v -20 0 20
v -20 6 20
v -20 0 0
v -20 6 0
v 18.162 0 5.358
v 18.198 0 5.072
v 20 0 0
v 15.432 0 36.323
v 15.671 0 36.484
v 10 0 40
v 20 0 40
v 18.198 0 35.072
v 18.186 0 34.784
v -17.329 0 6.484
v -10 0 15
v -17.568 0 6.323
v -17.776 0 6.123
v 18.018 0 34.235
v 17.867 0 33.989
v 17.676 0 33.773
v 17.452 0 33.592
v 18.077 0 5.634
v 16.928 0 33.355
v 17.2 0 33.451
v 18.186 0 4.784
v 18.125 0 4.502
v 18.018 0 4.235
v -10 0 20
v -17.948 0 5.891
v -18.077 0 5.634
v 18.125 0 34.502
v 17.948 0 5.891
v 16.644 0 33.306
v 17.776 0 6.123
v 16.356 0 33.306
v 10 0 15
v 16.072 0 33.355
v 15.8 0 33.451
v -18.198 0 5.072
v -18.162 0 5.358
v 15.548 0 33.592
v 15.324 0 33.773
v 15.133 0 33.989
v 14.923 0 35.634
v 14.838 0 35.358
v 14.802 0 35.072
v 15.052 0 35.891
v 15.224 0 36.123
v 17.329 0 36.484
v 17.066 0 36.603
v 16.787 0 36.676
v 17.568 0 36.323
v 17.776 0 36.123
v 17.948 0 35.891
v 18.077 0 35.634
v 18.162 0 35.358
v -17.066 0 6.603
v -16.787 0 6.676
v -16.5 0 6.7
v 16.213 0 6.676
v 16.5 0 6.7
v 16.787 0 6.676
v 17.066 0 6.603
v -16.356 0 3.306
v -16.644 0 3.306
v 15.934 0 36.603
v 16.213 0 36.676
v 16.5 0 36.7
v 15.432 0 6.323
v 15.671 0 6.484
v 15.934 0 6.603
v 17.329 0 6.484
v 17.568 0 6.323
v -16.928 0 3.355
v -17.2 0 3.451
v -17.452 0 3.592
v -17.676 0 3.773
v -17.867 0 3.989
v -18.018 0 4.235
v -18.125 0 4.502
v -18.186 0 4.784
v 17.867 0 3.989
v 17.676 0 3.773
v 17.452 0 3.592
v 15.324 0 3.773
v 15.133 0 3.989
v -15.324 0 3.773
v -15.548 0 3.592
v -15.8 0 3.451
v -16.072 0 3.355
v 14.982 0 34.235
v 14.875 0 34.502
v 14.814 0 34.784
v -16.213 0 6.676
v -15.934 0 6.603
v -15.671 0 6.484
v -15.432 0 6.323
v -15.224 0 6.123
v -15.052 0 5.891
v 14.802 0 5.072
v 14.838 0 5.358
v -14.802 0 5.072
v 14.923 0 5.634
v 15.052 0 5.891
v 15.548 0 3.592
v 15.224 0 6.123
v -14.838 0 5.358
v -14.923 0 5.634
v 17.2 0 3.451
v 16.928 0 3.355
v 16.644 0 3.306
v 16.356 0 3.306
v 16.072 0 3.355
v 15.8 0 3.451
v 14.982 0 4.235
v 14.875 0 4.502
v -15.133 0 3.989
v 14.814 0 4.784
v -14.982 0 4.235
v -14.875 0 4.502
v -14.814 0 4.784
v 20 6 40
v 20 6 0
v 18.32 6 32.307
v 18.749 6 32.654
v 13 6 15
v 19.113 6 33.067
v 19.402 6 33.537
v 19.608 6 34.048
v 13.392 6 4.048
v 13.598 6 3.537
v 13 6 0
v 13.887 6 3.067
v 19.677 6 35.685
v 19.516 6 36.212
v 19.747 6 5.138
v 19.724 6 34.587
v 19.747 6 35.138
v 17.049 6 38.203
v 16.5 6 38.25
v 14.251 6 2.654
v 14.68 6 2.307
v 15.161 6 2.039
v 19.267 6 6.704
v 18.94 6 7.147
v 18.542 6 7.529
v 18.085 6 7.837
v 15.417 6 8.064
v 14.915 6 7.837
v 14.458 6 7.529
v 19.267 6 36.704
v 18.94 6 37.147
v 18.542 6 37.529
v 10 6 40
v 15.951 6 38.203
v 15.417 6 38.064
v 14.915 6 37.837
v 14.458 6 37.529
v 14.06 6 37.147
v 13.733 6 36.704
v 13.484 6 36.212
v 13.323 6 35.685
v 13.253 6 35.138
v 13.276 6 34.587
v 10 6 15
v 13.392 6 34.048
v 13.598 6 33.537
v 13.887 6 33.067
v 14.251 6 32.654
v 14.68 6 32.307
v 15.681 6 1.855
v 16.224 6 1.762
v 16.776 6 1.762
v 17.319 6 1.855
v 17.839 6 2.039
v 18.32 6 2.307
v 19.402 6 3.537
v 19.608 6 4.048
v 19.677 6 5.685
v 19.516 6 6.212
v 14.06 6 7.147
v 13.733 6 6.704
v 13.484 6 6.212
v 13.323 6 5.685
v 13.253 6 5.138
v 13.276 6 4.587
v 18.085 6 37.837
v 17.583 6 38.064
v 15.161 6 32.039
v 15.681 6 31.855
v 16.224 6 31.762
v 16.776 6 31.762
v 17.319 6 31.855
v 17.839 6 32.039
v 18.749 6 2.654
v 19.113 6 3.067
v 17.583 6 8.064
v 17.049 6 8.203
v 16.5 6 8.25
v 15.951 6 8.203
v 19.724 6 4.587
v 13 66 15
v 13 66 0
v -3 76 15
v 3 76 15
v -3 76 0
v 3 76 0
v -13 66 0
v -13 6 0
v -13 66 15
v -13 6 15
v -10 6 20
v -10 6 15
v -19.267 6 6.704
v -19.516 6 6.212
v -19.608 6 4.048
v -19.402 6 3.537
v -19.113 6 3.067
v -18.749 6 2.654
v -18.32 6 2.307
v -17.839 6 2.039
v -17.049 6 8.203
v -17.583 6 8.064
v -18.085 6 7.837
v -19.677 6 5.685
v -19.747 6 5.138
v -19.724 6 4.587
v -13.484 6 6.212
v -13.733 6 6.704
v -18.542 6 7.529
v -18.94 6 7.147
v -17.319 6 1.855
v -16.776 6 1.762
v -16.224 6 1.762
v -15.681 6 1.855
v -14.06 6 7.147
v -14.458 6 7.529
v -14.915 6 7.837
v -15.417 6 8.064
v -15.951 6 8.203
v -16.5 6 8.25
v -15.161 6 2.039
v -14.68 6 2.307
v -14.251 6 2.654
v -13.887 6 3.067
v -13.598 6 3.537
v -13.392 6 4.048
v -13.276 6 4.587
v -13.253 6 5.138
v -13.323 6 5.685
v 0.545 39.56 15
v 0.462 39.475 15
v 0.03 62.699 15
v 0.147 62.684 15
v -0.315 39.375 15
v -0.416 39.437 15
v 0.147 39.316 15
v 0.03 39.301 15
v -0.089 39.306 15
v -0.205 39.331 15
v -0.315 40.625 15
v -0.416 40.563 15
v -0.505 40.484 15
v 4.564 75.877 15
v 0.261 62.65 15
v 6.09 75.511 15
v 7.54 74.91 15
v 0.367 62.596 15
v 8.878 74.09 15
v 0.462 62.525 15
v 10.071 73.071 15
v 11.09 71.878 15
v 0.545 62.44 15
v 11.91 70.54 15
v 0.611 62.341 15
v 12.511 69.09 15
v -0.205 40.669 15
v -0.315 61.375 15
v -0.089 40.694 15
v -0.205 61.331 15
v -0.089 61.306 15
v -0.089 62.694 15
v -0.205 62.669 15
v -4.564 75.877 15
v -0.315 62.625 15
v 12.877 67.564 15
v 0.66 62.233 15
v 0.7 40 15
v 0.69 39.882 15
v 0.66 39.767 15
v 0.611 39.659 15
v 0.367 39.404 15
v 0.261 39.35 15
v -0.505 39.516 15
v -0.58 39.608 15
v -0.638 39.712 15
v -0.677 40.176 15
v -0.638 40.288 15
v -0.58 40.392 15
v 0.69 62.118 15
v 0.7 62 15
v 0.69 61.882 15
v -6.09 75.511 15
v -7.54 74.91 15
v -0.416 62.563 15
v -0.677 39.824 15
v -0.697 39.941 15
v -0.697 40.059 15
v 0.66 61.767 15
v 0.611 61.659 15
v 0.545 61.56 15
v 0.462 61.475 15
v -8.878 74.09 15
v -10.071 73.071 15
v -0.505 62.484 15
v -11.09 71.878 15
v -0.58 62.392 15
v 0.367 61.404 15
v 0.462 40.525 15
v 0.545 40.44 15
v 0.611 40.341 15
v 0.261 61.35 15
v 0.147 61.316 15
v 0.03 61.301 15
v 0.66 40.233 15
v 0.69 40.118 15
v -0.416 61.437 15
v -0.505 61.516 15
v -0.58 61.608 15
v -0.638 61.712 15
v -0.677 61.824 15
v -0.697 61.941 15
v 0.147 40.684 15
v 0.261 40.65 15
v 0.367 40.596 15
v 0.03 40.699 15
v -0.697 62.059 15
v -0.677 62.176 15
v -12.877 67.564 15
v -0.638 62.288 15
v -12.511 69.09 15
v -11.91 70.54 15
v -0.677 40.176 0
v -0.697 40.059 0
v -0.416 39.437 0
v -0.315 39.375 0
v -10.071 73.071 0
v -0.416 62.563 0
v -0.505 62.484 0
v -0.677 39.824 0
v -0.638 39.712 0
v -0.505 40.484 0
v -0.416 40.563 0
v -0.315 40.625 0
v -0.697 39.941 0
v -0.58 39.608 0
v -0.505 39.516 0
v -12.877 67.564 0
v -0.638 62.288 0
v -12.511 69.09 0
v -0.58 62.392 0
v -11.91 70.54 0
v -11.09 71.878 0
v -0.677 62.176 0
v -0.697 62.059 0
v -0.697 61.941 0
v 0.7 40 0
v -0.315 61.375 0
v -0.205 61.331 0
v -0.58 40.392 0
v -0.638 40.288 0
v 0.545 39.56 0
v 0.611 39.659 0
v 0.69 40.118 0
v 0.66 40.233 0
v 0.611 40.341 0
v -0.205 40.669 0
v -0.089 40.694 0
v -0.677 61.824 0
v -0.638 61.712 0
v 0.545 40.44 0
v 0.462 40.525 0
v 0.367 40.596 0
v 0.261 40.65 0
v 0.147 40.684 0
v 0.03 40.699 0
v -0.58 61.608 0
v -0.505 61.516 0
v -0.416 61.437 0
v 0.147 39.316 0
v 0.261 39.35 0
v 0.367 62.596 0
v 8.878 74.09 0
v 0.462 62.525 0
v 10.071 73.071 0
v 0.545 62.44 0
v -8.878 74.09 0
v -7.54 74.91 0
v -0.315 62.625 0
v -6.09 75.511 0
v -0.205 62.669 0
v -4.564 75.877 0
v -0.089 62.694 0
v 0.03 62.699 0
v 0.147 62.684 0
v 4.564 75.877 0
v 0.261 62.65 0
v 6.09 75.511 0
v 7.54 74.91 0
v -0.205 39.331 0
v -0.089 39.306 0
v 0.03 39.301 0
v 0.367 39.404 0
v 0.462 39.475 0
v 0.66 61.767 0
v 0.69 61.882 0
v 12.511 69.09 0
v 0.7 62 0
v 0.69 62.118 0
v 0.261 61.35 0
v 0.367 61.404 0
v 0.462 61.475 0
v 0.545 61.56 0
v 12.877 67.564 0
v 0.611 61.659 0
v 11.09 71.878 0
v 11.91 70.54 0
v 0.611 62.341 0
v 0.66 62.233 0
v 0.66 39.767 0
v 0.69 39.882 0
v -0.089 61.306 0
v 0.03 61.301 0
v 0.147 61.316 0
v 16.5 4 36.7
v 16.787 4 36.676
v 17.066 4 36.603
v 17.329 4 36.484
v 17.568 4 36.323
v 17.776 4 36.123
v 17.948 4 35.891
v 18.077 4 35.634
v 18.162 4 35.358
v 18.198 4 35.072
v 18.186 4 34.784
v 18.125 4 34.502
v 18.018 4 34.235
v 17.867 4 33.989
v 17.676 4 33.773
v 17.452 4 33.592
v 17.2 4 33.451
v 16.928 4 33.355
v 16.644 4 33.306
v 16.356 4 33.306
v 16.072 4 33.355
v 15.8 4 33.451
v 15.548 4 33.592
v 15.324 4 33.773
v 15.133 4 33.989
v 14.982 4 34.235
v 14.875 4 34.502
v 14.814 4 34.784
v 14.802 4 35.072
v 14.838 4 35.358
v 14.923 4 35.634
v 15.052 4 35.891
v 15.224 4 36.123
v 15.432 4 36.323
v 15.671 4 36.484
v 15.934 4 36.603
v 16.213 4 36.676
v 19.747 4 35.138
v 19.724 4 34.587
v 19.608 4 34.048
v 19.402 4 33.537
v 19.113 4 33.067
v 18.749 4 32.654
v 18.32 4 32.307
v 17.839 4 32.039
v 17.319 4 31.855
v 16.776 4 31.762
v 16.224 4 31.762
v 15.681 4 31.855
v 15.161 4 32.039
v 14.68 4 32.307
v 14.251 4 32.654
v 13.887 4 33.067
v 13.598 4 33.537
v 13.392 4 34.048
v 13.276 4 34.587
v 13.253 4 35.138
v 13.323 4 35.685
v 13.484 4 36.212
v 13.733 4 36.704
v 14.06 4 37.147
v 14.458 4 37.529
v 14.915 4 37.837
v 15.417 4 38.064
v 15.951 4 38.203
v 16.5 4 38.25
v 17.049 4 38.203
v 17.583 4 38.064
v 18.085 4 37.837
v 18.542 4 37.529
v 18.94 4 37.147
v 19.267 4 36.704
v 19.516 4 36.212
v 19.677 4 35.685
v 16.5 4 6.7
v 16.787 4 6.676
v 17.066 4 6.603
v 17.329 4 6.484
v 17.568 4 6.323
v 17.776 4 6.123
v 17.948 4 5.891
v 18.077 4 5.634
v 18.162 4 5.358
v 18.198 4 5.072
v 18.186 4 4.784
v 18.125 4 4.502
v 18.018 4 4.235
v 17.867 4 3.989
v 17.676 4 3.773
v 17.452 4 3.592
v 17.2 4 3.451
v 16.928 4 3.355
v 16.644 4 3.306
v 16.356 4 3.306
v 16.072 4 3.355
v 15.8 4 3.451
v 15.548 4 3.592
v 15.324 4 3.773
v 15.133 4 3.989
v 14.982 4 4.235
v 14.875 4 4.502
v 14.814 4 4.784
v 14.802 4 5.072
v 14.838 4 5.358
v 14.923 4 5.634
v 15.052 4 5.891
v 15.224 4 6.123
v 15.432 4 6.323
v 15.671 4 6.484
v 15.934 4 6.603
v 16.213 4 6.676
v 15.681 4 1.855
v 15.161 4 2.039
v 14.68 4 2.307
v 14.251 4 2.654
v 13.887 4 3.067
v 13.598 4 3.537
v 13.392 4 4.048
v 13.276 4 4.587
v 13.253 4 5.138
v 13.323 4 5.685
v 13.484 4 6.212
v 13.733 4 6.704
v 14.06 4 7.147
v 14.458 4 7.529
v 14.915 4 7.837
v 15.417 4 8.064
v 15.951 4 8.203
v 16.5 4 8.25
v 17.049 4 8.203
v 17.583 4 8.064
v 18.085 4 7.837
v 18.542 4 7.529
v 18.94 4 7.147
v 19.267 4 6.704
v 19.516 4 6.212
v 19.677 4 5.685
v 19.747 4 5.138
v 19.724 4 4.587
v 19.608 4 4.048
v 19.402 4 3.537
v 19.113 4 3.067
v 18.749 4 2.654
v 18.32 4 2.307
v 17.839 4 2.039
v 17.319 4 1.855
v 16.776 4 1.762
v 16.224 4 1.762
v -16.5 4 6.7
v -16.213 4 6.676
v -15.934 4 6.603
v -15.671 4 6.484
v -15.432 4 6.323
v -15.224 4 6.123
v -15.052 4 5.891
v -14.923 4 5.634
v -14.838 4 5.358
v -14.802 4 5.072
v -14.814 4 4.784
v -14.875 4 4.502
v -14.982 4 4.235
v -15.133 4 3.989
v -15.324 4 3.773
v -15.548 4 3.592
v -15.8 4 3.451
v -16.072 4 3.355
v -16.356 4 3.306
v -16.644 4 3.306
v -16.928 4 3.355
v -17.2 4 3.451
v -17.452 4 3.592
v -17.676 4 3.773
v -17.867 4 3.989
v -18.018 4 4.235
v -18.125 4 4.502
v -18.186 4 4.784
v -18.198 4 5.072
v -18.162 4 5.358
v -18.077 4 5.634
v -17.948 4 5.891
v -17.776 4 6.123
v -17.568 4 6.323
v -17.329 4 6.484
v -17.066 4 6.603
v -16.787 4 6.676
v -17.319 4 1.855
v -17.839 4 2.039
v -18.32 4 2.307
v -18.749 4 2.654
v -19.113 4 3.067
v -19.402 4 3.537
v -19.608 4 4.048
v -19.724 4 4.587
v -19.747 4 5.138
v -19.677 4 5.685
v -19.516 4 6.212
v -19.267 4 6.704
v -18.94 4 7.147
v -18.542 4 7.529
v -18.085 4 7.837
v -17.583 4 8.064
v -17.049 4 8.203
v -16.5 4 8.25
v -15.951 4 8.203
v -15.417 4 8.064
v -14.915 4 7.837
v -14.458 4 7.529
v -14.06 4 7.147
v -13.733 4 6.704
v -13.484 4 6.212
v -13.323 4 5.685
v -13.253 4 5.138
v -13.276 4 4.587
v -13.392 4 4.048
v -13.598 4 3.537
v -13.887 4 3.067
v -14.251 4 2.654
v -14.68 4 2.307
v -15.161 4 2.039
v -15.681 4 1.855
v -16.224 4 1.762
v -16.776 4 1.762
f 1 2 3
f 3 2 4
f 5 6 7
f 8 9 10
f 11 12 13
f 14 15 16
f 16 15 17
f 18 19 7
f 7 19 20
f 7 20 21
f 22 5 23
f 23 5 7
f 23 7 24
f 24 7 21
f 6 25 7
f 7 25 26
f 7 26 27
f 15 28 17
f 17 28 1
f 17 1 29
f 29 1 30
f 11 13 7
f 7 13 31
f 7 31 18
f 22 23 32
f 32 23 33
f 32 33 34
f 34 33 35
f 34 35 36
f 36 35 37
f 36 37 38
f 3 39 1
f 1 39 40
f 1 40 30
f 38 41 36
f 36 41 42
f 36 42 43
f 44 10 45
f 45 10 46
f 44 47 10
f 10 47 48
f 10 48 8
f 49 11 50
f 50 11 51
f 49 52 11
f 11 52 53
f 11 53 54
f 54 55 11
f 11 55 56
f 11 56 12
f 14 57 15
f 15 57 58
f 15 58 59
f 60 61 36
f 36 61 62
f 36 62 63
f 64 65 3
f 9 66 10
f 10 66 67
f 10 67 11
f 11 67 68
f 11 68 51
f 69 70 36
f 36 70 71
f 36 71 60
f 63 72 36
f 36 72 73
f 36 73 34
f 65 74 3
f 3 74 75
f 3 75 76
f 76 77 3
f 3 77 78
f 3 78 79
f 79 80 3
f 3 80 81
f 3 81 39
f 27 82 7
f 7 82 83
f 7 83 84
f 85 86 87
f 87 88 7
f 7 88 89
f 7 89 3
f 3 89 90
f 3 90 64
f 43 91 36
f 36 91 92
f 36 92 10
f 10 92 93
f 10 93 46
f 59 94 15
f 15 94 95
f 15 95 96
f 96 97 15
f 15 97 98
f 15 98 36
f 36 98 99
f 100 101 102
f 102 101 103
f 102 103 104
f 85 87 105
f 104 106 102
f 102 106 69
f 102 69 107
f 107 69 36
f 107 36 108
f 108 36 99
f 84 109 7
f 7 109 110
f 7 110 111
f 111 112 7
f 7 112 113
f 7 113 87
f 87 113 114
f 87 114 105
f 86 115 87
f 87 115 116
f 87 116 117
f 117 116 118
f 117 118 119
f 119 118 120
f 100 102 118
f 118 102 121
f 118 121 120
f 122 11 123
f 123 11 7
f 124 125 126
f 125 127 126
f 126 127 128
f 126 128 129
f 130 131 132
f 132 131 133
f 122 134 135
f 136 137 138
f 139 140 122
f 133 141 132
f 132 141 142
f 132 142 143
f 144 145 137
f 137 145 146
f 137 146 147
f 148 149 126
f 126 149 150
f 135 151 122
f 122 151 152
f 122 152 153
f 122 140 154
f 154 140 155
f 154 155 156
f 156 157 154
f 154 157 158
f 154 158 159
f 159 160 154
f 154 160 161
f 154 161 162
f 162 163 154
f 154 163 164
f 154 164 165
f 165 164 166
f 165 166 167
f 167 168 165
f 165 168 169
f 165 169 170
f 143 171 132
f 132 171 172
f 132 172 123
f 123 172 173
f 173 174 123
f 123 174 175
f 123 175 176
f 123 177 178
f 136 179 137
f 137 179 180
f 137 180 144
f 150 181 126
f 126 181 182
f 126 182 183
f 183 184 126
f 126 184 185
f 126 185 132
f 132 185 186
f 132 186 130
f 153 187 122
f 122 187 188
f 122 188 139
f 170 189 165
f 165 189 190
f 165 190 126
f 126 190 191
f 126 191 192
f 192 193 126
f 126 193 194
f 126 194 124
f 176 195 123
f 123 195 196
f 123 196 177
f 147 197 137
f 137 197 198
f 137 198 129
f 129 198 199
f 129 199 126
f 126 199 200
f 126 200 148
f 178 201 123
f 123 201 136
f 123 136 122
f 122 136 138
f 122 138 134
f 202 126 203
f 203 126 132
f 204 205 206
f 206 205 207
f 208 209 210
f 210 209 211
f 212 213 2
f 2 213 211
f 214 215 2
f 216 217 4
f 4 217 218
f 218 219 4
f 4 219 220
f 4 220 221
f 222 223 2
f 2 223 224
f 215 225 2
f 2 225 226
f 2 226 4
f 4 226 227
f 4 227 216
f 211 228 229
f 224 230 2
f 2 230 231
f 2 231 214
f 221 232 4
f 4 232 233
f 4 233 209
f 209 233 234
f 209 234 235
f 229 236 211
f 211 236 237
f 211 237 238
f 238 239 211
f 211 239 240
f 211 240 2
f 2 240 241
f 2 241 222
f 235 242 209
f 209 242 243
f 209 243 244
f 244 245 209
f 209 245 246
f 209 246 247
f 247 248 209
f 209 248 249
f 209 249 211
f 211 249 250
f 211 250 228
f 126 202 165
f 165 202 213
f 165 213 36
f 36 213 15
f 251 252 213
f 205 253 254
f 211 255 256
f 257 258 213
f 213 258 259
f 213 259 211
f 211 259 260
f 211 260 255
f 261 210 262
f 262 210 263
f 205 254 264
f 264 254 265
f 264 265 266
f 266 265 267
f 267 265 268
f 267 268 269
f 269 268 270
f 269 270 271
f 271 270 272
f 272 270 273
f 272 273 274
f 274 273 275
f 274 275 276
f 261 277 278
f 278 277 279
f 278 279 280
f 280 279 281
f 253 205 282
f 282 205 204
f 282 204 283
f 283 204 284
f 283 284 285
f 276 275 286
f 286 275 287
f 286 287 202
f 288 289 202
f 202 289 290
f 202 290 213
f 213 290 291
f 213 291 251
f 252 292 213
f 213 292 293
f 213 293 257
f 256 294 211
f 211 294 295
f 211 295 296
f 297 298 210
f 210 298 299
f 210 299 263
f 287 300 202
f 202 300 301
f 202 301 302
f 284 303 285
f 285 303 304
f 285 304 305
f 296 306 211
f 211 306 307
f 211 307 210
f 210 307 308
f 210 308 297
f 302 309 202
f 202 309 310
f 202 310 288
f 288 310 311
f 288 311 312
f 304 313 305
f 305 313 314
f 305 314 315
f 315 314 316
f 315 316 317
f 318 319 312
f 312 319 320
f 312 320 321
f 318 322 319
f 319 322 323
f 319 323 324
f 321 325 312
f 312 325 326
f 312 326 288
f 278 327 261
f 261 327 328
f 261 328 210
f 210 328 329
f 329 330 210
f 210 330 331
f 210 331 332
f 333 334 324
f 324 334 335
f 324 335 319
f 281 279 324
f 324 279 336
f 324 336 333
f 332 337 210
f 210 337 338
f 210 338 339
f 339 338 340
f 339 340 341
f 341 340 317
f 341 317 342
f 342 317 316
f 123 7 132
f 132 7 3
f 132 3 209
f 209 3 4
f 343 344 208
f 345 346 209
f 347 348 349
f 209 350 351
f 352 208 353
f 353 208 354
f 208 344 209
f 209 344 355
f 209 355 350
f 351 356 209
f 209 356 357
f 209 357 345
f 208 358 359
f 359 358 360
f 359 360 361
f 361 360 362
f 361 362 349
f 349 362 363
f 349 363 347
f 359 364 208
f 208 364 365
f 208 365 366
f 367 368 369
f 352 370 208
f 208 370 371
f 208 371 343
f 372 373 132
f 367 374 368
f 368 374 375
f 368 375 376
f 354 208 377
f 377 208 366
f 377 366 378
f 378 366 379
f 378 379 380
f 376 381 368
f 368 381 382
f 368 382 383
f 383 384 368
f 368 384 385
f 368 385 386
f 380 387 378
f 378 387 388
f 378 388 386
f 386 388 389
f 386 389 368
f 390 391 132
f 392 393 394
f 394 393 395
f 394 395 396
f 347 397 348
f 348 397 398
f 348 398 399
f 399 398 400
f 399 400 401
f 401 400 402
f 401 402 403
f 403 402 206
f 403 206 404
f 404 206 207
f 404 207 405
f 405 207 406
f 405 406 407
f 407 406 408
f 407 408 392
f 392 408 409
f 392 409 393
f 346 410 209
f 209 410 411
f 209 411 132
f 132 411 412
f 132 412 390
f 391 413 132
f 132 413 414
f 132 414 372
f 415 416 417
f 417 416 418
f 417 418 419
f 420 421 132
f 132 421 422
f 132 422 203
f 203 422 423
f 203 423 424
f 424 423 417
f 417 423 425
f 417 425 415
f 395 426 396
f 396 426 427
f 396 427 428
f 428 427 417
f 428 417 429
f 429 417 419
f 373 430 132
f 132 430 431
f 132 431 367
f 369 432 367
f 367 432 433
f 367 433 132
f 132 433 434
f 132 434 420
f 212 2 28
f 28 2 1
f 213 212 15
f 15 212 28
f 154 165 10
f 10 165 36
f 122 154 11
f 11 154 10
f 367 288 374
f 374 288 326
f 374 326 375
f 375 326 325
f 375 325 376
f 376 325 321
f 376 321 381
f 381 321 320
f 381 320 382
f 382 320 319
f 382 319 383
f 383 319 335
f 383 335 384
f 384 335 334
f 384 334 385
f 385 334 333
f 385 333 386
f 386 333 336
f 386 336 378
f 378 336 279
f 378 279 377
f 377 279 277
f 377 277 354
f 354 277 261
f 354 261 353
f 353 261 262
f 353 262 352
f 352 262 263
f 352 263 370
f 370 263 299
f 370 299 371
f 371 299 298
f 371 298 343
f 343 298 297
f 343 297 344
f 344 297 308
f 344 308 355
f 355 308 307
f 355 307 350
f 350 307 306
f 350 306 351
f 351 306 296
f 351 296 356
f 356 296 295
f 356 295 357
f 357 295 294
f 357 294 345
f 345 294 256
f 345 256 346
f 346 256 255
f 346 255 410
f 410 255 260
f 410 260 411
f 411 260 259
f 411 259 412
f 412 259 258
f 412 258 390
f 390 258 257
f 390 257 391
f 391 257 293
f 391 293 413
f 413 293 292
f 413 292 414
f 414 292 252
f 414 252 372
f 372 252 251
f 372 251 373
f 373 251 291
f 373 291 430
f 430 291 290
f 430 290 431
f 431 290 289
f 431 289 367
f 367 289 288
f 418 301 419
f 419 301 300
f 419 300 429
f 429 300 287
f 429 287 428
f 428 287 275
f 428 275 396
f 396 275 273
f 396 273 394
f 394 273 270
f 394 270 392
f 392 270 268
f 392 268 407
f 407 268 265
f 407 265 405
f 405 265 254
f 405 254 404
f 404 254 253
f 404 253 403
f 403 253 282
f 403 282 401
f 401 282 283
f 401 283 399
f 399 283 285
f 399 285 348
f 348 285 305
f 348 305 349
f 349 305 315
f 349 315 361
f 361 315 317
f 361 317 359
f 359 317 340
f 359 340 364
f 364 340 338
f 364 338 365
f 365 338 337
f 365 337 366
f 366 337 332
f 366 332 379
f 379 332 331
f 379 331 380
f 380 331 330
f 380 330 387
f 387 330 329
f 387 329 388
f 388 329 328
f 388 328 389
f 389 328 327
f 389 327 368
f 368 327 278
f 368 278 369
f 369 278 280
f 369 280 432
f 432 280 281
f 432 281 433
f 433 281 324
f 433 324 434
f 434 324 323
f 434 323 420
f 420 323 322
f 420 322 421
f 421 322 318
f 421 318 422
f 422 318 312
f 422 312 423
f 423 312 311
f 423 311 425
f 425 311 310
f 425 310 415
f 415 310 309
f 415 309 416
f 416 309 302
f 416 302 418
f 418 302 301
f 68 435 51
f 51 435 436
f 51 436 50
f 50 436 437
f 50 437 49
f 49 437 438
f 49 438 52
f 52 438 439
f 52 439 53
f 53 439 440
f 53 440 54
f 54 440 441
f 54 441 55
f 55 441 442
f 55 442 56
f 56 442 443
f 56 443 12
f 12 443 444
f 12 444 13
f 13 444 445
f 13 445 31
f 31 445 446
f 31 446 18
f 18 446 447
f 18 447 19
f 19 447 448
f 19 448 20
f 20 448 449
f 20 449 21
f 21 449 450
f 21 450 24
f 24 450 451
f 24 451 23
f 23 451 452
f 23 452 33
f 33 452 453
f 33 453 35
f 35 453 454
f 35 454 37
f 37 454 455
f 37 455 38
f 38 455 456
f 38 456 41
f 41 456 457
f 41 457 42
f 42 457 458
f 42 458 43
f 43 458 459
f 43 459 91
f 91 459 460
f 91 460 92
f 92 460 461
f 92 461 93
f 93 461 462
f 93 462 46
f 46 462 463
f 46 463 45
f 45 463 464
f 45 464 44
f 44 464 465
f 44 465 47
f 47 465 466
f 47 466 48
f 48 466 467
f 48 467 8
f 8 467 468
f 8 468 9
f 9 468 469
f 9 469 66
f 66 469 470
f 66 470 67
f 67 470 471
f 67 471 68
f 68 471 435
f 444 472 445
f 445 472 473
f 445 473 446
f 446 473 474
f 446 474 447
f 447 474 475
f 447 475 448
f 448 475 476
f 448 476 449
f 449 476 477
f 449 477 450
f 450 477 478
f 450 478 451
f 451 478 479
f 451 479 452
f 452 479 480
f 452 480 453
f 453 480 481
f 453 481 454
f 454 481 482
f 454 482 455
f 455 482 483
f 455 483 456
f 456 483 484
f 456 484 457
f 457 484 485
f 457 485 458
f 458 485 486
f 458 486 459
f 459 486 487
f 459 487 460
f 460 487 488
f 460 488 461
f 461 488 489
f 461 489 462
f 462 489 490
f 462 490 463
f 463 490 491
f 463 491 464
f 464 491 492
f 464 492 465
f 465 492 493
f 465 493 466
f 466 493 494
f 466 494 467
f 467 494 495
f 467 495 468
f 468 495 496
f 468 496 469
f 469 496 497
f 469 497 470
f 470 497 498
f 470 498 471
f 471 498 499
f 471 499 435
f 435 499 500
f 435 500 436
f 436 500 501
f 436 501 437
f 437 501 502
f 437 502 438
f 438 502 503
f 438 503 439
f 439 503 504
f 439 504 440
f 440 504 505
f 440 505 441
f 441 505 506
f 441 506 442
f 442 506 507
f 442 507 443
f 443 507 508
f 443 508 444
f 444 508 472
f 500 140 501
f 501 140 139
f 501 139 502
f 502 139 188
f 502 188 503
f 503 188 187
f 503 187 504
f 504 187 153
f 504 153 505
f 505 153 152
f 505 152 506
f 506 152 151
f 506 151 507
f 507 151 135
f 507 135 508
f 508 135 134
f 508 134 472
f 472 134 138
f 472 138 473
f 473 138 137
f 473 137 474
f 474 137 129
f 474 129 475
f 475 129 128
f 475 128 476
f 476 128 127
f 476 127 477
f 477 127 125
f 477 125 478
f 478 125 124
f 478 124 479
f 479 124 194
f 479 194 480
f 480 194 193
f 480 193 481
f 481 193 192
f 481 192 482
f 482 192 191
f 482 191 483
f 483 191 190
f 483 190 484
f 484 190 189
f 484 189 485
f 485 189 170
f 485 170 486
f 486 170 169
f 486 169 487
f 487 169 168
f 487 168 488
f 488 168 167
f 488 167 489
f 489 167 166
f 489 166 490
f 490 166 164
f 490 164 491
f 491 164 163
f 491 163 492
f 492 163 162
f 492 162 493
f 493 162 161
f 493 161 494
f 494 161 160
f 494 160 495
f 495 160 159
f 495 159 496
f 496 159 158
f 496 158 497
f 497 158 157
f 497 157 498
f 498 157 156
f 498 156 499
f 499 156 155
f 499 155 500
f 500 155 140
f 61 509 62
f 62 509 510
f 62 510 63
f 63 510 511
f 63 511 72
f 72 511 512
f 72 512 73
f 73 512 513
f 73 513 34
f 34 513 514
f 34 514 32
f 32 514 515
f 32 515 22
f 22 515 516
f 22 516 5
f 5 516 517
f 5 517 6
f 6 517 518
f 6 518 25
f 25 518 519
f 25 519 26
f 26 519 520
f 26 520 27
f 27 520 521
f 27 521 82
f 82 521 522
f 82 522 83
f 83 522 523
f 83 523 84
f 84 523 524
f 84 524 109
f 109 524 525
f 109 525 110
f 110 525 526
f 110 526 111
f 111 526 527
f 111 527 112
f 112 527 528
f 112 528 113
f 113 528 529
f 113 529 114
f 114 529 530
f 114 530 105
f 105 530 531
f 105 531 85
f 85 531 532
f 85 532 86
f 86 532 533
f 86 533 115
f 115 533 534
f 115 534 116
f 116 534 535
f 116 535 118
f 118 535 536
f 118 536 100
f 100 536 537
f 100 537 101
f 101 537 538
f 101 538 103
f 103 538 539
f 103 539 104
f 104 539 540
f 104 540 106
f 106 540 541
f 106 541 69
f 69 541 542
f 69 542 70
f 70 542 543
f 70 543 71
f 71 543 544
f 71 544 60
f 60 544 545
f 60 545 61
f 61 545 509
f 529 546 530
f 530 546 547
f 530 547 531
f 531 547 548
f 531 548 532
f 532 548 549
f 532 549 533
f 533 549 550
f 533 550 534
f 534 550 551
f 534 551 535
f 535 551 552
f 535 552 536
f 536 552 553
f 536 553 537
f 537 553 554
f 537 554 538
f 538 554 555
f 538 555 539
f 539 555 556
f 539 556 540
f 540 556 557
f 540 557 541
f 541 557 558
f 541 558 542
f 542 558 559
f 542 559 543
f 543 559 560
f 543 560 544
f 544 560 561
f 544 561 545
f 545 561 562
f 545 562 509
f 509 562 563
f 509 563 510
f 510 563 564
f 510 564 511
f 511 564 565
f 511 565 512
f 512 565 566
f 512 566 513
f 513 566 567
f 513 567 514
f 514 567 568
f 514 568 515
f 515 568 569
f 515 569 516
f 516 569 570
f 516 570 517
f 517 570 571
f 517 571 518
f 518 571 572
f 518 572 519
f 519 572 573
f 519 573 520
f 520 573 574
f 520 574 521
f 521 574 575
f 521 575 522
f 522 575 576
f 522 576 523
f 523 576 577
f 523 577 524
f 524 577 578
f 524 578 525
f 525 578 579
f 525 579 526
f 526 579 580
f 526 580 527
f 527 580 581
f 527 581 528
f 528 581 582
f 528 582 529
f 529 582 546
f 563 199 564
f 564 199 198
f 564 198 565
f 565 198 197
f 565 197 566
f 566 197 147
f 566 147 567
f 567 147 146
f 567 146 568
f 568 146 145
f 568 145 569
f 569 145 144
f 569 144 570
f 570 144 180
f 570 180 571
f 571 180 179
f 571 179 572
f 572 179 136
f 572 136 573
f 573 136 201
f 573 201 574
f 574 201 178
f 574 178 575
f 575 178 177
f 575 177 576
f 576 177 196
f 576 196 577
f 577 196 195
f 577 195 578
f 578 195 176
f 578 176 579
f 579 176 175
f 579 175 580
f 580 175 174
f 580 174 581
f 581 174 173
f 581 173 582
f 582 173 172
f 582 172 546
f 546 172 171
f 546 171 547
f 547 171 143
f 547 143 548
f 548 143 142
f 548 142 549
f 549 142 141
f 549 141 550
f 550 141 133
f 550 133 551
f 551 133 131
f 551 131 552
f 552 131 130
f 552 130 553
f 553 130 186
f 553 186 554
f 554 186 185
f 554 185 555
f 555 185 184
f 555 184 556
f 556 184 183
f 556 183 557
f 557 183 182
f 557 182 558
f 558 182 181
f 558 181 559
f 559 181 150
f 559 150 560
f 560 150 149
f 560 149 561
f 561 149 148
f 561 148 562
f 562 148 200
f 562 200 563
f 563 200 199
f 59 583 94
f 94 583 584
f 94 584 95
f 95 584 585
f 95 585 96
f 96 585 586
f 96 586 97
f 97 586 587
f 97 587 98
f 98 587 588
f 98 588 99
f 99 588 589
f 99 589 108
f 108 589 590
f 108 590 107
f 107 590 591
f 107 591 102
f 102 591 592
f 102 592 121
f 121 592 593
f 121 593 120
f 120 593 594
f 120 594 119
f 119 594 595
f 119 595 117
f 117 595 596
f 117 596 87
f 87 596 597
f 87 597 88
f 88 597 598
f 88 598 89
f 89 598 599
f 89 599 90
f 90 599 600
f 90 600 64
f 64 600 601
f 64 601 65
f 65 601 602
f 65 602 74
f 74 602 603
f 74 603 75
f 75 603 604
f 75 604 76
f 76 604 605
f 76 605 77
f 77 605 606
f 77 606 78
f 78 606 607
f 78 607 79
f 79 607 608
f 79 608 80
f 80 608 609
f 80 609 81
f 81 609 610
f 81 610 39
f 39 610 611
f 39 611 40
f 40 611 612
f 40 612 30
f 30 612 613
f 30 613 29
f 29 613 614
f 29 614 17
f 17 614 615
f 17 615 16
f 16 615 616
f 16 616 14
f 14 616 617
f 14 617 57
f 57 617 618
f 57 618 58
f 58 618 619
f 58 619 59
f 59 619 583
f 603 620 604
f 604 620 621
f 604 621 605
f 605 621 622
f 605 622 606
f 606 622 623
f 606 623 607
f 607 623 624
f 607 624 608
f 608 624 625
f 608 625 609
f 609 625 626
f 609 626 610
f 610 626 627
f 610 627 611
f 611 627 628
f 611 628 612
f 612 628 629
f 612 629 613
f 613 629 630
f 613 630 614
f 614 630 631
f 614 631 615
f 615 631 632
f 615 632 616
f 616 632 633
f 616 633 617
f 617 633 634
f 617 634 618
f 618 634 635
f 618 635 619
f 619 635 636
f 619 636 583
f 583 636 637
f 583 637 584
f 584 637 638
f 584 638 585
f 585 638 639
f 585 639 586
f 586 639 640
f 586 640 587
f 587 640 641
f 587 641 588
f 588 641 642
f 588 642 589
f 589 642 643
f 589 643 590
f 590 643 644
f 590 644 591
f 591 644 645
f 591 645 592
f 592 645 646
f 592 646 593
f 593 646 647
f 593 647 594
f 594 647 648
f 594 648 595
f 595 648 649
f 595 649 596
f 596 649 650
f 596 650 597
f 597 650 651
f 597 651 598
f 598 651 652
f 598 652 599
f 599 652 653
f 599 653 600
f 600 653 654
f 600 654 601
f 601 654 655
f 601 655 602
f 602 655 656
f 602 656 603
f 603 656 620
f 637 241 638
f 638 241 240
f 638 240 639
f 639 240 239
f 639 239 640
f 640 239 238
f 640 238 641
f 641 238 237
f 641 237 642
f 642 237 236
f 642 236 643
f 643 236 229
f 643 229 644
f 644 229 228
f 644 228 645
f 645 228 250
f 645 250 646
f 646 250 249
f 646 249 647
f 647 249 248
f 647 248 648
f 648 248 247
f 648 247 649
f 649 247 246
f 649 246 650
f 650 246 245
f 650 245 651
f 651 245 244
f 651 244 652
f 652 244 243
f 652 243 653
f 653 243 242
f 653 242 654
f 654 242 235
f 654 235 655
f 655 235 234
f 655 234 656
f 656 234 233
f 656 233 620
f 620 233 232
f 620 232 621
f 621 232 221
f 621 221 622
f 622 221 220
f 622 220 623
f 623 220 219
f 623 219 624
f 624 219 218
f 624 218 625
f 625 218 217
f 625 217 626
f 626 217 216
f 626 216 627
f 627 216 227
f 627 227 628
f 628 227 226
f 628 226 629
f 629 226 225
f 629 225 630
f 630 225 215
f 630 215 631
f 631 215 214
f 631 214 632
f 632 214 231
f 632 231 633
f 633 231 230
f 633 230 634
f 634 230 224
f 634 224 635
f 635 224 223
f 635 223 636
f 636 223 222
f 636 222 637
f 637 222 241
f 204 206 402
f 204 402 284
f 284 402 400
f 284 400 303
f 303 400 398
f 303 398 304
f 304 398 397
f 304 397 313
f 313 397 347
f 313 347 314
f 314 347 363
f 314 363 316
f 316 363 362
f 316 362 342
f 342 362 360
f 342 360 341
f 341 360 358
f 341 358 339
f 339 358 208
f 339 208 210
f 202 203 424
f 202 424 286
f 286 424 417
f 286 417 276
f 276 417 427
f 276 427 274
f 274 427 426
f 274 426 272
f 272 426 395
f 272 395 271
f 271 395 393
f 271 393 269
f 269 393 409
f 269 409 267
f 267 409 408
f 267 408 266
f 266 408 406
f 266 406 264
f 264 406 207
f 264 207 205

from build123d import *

# Parameters (mm, degrees)
BOSS_EXTRU_1_DEPTH                                   = 15
ESQUISSE2_W                                          = 10
ESQUISSE2_H                                          = 25
ESQUISSE2_H_2                                        = 5
BOSS_EXTRU_2_DEPTH                                   = 6
D_GAGEMENT_M1_21_D                                   = 1.4
CHAMBRAGE_POUR_T_TE_CYLINDRIQUE_FENDUE_M_D           = 3.4
CHAMBRAGE_POUR_T_TE_CYLINDRIQUE_FENDUE_M_CBORE_D     = 6.5
CHAMBRAGE_POUR_T_TE_CYLINDRIQUE_FENDUE_M_CBORE_DEPTH = 2
CONG_1_R                                             = 10


with BuildPart() as part:
    # Esquisse1 → Boss.-Extru.1 (new body)
    with BuildSketch(Plane.XY):
        Polygon((0, 0), (-20, 0), (-20, 6), (-13, 6), (-13, 76), (13, 76), (13, 6), (20, 6), (20, 0), align=None)
    extrude(amount=BOSS_EXTRU_1_DEPTH)

    # Esquisse2 → Boss.-Extru.2 (add)
    with BuildSketch(Plane.XZ):
        with Locations((15, 27.5)):
            Rectangle(ESQUISSE2_W, ESQUISSE2_H)
        with Locations((-15, 17.5)):
            Rectangle(ESQUISSE2_W, ESQUISSE2_H_2)
    extrude(amount=-BOSS_EXTRU_2_DEPTH)

    # Dégagement M1.21 (through all)
    with Locations(Plane.XY.offset(15)):
        with Locations((0, 62), (0, 40)):
            Hole(D_GAGEMENT_M1_21_D / 2)

    # Chambrage pour tête cylindrique fendue M31 (through all)
    with Locations(Plane(origin=(0, 6, 0), x_dir=(1, 0, 0), z_dir=(0, 1, 0))):
        with Locations((-16.5, -5), (16.5, -5), (16.5, -35)):
            CounterBoreHole(CHAMBRAGE_POUR_T_TE_CYLINDRIQUE_FENDUE_M_D / 2, CHAMBRAGE_POUR_T_TE_CYLINDRIQUE_FENDUE_M_CBORE_D / 2, CHAMBRAGE_POUR_T_TE_CYLINDRIQUE_FENDUE_M_CBORE_DEPTH)

    # Congé1
    cong_1_edges = [part.edges().sort_by_distance(p)[0] for p in [
        (-13, 76, 7.5),
        (13, 76, 7.5),
    ]]
    fillet(cong_1_edges, radius=CONG_1_R)


solid = part.part
